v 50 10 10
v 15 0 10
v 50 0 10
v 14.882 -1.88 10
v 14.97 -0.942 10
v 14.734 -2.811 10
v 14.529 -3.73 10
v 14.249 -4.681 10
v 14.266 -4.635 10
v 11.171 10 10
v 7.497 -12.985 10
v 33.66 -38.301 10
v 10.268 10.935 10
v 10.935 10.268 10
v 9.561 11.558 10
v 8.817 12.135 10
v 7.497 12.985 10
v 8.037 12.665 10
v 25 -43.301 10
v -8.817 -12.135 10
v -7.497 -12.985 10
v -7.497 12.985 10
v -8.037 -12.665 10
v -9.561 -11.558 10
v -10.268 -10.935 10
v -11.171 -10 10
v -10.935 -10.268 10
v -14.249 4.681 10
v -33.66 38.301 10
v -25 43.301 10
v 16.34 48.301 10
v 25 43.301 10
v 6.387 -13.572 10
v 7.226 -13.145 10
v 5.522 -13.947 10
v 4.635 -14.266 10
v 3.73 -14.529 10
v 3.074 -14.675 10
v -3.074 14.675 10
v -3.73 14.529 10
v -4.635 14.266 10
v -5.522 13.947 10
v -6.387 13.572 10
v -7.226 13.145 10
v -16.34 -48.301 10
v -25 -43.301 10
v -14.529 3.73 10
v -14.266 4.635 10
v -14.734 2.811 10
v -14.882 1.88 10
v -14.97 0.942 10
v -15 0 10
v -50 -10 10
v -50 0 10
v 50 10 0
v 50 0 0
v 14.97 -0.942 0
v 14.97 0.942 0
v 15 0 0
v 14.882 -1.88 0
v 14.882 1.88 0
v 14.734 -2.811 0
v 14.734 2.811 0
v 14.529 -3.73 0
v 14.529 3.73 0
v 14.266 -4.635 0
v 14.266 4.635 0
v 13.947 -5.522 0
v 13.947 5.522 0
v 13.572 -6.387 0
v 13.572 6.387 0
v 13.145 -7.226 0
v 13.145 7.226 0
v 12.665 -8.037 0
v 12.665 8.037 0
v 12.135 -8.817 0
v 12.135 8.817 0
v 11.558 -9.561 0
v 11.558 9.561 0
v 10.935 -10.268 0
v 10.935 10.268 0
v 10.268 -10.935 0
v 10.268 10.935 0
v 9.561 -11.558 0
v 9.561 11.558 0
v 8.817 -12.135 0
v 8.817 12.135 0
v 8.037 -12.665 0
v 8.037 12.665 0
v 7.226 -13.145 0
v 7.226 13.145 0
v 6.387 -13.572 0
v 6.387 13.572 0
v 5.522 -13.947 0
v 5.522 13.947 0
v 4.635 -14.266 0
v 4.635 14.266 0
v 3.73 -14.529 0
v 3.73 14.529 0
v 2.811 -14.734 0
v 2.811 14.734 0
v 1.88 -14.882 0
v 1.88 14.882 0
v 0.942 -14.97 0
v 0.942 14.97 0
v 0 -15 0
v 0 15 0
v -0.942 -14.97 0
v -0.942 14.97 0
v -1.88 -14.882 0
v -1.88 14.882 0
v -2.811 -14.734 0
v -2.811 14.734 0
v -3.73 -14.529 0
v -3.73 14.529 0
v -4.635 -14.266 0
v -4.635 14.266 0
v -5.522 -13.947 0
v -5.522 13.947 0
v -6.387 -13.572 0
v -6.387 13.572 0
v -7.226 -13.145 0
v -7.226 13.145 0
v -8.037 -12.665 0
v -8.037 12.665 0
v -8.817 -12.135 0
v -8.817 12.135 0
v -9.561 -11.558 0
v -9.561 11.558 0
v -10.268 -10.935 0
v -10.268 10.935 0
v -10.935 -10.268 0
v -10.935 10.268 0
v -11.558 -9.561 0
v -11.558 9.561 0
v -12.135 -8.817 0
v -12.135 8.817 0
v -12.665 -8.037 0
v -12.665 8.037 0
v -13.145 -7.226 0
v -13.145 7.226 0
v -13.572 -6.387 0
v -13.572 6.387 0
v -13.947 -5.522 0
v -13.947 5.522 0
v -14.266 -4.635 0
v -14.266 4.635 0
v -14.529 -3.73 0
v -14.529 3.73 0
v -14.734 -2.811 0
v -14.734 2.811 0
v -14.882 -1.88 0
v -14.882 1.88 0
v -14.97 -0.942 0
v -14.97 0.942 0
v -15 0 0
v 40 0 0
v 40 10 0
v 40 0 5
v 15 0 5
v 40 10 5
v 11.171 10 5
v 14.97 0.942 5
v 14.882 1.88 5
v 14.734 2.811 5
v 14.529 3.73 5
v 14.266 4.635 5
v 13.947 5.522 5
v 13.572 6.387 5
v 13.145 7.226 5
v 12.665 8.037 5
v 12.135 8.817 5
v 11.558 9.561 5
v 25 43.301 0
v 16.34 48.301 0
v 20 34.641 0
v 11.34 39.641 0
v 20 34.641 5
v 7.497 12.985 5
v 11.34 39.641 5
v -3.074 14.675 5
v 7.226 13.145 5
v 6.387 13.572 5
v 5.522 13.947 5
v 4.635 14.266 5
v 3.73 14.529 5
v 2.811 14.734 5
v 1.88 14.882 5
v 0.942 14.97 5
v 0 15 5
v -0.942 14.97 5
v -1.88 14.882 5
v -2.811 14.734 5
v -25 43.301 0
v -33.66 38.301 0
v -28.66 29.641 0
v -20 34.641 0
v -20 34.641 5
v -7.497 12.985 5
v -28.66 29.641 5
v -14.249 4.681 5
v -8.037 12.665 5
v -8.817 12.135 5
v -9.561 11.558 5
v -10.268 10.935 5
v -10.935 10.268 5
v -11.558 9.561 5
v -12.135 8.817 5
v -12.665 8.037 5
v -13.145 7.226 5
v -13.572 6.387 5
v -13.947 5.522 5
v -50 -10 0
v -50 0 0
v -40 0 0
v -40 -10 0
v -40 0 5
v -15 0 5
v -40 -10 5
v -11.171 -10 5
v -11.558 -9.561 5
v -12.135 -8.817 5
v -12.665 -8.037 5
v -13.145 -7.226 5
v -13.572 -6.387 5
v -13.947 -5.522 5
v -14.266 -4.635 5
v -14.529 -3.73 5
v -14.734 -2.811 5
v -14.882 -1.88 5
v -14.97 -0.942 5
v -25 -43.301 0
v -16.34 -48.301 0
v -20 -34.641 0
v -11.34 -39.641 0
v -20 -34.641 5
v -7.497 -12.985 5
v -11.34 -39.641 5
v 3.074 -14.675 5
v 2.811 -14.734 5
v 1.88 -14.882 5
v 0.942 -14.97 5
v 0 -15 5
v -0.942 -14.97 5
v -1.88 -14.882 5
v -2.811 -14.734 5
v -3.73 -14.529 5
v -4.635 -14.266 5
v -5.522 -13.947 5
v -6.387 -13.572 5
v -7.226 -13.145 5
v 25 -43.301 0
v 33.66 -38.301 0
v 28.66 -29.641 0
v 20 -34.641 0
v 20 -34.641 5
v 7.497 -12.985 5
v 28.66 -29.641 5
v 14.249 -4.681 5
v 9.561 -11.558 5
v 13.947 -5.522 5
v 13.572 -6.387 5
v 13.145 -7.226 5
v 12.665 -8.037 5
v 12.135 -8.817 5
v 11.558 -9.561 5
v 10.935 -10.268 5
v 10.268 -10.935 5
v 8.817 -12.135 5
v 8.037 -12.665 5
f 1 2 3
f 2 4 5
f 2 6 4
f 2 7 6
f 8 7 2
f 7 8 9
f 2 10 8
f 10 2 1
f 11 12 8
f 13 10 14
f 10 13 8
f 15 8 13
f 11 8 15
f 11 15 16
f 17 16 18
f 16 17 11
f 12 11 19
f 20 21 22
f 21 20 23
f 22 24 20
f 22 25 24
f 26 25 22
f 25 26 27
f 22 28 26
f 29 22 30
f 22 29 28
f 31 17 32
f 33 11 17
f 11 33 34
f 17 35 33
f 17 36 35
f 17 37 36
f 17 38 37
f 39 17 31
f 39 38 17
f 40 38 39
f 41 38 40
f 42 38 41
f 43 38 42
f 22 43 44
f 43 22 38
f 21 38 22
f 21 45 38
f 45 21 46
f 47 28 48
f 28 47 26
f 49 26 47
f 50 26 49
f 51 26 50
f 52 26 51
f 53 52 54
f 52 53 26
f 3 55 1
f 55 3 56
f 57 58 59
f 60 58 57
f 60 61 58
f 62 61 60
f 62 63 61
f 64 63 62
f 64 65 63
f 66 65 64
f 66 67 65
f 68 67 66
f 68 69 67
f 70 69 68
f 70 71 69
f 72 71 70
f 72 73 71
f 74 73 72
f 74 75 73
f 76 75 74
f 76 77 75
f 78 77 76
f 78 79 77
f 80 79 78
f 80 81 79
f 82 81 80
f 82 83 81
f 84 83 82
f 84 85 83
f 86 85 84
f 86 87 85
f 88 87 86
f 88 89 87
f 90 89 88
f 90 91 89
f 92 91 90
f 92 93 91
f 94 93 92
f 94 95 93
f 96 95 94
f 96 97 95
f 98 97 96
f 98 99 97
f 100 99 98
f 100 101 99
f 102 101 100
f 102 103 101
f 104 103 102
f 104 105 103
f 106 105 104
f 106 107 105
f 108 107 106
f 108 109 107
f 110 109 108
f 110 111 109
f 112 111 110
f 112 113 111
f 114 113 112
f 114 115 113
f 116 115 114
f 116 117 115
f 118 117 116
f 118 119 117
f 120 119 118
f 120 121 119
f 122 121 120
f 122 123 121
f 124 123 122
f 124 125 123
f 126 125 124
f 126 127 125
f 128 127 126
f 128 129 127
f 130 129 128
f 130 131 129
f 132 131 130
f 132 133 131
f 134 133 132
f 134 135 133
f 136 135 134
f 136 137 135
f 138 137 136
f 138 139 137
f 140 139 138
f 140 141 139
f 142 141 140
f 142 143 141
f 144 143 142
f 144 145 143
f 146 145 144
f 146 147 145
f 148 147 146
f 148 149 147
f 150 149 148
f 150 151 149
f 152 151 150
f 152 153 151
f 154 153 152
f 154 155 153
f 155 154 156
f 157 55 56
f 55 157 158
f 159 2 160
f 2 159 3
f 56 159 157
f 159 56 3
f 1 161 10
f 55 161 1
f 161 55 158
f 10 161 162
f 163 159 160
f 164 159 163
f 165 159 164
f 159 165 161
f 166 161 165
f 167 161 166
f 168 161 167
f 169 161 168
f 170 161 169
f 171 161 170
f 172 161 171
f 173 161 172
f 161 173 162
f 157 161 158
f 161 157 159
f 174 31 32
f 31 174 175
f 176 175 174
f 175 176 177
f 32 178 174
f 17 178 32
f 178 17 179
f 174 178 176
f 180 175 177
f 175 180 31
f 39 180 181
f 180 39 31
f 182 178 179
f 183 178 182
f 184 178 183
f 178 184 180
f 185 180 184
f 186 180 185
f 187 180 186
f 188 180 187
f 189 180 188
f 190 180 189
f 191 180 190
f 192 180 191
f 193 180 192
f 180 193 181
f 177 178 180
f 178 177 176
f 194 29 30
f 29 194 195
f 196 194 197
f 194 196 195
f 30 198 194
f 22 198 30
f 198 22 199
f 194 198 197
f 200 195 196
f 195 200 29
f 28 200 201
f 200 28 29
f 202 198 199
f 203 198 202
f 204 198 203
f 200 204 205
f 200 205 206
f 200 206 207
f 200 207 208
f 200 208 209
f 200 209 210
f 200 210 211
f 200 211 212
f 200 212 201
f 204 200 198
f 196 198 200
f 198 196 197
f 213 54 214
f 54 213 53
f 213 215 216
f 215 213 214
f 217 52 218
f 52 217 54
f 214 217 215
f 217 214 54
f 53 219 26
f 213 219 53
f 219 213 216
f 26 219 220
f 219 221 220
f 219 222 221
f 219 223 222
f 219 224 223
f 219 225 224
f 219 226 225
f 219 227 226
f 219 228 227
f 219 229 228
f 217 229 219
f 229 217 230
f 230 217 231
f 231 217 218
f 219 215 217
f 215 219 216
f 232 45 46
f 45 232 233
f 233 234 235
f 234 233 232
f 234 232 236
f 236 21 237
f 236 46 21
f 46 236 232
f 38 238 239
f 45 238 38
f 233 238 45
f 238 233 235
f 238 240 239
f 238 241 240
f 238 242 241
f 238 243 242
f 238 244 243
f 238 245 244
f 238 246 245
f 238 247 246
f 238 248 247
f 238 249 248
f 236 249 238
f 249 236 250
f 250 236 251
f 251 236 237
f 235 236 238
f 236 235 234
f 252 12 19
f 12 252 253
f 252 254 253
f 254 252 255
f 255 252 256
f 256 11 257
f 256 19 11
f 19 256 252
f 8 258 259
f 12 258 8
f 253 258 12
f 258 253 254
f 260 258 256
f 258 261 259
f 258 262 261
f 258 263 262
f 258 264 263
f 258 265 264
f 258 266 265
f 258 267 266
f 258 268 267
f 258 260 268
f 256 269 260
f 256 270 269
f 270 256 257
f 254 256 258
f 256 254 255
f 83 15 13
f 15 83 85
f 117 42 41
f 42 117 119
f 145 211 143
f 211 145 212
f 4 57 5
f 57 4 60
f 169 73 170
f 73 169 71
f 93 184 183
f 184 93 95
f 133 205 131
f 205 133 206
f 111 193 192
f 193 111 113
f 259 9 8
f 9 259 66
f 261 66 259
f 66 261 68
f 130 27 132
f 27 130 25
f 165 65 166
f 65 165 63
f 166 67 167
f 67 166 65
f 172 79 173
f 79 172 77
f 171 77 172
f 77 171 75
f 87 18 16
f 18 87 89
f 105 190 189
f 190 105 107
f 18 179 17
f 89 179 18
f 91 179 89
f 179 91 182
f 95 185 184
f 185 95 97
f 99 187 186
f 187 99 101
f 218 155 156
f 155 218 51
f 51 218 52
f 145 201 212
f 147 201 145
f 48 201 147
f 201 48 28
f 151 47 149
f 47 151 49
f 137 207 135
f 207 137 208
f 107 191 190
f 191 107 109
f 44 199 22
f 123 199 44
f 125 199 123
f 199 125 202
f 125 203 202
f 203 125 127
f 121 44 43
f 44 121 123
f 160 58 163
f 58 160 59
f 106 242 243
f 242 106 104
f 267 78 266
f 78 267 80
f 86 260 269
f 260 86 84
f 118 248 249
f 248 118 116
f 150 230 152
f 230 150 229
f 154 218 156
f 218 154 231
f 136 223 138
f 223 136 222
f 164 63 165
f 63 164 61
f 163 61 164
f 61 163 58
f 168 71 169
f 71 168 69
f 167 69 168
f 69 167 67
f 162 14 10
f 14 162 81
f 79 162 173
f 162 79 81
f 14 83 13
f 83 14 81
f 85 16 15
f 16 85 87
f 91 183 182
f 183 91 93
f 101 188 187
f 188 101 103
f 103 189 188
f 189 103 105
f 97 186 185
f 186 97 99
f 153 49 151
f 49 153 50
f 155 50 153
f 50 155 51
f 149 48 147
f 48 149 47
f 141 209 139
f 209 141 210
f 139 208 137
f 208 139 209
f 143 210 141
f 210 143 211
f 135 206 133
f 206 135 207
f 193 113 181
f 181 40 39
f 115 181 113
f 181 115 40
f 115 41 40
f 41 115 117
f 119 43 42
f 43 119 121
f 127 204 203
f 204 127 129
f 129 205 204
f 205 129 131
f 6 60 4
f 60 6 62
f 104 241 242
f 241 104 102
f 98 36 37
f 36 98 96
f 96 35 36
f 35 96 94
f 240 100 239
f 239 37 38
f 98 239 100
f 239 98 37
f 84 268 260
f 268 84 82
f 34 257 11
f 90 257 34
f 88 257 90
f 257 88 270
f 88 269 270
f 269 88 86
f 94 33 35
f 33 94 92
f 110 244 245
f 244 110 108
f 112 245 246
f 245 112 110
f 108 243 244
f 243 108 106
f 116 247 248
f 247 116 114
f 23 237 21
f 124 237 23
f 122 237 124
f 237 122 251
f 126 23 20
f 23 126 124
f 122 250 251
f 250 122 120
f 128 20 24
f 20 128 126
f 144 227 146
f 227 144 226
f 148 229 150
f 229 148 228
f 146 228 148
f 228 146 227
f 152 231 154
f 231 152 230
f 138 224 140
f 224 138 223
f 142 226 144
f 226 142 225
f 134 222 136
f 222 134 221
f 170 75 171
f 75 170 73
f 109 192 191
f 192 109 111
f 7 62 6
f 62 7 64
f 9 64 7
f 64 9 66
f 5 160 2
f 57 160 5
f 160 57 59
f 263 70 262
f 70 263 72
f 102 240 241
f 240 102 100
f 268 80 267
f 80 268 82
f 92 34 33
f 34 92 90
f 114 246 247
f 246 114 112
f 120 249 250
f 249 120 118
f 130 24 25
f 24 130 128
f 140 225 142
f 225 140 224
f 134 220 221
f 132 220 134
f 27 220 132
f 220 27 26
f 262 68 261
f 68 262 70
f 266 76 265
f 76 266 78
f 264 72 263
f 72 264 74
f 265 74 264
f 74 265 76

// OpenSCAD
$fn = 100;

union() {
for (a =[0:60:360]){ rotate([0,0,a]) Bridge();}
cylinder(h = 10, r1 = 15, r2 = 15, center = false);
}

module Bridge(){
    difference() {
        cube([50, 10, 10]);
        translate([10, 0, 0])
            cube([30, 10, 5]);
    }
}
